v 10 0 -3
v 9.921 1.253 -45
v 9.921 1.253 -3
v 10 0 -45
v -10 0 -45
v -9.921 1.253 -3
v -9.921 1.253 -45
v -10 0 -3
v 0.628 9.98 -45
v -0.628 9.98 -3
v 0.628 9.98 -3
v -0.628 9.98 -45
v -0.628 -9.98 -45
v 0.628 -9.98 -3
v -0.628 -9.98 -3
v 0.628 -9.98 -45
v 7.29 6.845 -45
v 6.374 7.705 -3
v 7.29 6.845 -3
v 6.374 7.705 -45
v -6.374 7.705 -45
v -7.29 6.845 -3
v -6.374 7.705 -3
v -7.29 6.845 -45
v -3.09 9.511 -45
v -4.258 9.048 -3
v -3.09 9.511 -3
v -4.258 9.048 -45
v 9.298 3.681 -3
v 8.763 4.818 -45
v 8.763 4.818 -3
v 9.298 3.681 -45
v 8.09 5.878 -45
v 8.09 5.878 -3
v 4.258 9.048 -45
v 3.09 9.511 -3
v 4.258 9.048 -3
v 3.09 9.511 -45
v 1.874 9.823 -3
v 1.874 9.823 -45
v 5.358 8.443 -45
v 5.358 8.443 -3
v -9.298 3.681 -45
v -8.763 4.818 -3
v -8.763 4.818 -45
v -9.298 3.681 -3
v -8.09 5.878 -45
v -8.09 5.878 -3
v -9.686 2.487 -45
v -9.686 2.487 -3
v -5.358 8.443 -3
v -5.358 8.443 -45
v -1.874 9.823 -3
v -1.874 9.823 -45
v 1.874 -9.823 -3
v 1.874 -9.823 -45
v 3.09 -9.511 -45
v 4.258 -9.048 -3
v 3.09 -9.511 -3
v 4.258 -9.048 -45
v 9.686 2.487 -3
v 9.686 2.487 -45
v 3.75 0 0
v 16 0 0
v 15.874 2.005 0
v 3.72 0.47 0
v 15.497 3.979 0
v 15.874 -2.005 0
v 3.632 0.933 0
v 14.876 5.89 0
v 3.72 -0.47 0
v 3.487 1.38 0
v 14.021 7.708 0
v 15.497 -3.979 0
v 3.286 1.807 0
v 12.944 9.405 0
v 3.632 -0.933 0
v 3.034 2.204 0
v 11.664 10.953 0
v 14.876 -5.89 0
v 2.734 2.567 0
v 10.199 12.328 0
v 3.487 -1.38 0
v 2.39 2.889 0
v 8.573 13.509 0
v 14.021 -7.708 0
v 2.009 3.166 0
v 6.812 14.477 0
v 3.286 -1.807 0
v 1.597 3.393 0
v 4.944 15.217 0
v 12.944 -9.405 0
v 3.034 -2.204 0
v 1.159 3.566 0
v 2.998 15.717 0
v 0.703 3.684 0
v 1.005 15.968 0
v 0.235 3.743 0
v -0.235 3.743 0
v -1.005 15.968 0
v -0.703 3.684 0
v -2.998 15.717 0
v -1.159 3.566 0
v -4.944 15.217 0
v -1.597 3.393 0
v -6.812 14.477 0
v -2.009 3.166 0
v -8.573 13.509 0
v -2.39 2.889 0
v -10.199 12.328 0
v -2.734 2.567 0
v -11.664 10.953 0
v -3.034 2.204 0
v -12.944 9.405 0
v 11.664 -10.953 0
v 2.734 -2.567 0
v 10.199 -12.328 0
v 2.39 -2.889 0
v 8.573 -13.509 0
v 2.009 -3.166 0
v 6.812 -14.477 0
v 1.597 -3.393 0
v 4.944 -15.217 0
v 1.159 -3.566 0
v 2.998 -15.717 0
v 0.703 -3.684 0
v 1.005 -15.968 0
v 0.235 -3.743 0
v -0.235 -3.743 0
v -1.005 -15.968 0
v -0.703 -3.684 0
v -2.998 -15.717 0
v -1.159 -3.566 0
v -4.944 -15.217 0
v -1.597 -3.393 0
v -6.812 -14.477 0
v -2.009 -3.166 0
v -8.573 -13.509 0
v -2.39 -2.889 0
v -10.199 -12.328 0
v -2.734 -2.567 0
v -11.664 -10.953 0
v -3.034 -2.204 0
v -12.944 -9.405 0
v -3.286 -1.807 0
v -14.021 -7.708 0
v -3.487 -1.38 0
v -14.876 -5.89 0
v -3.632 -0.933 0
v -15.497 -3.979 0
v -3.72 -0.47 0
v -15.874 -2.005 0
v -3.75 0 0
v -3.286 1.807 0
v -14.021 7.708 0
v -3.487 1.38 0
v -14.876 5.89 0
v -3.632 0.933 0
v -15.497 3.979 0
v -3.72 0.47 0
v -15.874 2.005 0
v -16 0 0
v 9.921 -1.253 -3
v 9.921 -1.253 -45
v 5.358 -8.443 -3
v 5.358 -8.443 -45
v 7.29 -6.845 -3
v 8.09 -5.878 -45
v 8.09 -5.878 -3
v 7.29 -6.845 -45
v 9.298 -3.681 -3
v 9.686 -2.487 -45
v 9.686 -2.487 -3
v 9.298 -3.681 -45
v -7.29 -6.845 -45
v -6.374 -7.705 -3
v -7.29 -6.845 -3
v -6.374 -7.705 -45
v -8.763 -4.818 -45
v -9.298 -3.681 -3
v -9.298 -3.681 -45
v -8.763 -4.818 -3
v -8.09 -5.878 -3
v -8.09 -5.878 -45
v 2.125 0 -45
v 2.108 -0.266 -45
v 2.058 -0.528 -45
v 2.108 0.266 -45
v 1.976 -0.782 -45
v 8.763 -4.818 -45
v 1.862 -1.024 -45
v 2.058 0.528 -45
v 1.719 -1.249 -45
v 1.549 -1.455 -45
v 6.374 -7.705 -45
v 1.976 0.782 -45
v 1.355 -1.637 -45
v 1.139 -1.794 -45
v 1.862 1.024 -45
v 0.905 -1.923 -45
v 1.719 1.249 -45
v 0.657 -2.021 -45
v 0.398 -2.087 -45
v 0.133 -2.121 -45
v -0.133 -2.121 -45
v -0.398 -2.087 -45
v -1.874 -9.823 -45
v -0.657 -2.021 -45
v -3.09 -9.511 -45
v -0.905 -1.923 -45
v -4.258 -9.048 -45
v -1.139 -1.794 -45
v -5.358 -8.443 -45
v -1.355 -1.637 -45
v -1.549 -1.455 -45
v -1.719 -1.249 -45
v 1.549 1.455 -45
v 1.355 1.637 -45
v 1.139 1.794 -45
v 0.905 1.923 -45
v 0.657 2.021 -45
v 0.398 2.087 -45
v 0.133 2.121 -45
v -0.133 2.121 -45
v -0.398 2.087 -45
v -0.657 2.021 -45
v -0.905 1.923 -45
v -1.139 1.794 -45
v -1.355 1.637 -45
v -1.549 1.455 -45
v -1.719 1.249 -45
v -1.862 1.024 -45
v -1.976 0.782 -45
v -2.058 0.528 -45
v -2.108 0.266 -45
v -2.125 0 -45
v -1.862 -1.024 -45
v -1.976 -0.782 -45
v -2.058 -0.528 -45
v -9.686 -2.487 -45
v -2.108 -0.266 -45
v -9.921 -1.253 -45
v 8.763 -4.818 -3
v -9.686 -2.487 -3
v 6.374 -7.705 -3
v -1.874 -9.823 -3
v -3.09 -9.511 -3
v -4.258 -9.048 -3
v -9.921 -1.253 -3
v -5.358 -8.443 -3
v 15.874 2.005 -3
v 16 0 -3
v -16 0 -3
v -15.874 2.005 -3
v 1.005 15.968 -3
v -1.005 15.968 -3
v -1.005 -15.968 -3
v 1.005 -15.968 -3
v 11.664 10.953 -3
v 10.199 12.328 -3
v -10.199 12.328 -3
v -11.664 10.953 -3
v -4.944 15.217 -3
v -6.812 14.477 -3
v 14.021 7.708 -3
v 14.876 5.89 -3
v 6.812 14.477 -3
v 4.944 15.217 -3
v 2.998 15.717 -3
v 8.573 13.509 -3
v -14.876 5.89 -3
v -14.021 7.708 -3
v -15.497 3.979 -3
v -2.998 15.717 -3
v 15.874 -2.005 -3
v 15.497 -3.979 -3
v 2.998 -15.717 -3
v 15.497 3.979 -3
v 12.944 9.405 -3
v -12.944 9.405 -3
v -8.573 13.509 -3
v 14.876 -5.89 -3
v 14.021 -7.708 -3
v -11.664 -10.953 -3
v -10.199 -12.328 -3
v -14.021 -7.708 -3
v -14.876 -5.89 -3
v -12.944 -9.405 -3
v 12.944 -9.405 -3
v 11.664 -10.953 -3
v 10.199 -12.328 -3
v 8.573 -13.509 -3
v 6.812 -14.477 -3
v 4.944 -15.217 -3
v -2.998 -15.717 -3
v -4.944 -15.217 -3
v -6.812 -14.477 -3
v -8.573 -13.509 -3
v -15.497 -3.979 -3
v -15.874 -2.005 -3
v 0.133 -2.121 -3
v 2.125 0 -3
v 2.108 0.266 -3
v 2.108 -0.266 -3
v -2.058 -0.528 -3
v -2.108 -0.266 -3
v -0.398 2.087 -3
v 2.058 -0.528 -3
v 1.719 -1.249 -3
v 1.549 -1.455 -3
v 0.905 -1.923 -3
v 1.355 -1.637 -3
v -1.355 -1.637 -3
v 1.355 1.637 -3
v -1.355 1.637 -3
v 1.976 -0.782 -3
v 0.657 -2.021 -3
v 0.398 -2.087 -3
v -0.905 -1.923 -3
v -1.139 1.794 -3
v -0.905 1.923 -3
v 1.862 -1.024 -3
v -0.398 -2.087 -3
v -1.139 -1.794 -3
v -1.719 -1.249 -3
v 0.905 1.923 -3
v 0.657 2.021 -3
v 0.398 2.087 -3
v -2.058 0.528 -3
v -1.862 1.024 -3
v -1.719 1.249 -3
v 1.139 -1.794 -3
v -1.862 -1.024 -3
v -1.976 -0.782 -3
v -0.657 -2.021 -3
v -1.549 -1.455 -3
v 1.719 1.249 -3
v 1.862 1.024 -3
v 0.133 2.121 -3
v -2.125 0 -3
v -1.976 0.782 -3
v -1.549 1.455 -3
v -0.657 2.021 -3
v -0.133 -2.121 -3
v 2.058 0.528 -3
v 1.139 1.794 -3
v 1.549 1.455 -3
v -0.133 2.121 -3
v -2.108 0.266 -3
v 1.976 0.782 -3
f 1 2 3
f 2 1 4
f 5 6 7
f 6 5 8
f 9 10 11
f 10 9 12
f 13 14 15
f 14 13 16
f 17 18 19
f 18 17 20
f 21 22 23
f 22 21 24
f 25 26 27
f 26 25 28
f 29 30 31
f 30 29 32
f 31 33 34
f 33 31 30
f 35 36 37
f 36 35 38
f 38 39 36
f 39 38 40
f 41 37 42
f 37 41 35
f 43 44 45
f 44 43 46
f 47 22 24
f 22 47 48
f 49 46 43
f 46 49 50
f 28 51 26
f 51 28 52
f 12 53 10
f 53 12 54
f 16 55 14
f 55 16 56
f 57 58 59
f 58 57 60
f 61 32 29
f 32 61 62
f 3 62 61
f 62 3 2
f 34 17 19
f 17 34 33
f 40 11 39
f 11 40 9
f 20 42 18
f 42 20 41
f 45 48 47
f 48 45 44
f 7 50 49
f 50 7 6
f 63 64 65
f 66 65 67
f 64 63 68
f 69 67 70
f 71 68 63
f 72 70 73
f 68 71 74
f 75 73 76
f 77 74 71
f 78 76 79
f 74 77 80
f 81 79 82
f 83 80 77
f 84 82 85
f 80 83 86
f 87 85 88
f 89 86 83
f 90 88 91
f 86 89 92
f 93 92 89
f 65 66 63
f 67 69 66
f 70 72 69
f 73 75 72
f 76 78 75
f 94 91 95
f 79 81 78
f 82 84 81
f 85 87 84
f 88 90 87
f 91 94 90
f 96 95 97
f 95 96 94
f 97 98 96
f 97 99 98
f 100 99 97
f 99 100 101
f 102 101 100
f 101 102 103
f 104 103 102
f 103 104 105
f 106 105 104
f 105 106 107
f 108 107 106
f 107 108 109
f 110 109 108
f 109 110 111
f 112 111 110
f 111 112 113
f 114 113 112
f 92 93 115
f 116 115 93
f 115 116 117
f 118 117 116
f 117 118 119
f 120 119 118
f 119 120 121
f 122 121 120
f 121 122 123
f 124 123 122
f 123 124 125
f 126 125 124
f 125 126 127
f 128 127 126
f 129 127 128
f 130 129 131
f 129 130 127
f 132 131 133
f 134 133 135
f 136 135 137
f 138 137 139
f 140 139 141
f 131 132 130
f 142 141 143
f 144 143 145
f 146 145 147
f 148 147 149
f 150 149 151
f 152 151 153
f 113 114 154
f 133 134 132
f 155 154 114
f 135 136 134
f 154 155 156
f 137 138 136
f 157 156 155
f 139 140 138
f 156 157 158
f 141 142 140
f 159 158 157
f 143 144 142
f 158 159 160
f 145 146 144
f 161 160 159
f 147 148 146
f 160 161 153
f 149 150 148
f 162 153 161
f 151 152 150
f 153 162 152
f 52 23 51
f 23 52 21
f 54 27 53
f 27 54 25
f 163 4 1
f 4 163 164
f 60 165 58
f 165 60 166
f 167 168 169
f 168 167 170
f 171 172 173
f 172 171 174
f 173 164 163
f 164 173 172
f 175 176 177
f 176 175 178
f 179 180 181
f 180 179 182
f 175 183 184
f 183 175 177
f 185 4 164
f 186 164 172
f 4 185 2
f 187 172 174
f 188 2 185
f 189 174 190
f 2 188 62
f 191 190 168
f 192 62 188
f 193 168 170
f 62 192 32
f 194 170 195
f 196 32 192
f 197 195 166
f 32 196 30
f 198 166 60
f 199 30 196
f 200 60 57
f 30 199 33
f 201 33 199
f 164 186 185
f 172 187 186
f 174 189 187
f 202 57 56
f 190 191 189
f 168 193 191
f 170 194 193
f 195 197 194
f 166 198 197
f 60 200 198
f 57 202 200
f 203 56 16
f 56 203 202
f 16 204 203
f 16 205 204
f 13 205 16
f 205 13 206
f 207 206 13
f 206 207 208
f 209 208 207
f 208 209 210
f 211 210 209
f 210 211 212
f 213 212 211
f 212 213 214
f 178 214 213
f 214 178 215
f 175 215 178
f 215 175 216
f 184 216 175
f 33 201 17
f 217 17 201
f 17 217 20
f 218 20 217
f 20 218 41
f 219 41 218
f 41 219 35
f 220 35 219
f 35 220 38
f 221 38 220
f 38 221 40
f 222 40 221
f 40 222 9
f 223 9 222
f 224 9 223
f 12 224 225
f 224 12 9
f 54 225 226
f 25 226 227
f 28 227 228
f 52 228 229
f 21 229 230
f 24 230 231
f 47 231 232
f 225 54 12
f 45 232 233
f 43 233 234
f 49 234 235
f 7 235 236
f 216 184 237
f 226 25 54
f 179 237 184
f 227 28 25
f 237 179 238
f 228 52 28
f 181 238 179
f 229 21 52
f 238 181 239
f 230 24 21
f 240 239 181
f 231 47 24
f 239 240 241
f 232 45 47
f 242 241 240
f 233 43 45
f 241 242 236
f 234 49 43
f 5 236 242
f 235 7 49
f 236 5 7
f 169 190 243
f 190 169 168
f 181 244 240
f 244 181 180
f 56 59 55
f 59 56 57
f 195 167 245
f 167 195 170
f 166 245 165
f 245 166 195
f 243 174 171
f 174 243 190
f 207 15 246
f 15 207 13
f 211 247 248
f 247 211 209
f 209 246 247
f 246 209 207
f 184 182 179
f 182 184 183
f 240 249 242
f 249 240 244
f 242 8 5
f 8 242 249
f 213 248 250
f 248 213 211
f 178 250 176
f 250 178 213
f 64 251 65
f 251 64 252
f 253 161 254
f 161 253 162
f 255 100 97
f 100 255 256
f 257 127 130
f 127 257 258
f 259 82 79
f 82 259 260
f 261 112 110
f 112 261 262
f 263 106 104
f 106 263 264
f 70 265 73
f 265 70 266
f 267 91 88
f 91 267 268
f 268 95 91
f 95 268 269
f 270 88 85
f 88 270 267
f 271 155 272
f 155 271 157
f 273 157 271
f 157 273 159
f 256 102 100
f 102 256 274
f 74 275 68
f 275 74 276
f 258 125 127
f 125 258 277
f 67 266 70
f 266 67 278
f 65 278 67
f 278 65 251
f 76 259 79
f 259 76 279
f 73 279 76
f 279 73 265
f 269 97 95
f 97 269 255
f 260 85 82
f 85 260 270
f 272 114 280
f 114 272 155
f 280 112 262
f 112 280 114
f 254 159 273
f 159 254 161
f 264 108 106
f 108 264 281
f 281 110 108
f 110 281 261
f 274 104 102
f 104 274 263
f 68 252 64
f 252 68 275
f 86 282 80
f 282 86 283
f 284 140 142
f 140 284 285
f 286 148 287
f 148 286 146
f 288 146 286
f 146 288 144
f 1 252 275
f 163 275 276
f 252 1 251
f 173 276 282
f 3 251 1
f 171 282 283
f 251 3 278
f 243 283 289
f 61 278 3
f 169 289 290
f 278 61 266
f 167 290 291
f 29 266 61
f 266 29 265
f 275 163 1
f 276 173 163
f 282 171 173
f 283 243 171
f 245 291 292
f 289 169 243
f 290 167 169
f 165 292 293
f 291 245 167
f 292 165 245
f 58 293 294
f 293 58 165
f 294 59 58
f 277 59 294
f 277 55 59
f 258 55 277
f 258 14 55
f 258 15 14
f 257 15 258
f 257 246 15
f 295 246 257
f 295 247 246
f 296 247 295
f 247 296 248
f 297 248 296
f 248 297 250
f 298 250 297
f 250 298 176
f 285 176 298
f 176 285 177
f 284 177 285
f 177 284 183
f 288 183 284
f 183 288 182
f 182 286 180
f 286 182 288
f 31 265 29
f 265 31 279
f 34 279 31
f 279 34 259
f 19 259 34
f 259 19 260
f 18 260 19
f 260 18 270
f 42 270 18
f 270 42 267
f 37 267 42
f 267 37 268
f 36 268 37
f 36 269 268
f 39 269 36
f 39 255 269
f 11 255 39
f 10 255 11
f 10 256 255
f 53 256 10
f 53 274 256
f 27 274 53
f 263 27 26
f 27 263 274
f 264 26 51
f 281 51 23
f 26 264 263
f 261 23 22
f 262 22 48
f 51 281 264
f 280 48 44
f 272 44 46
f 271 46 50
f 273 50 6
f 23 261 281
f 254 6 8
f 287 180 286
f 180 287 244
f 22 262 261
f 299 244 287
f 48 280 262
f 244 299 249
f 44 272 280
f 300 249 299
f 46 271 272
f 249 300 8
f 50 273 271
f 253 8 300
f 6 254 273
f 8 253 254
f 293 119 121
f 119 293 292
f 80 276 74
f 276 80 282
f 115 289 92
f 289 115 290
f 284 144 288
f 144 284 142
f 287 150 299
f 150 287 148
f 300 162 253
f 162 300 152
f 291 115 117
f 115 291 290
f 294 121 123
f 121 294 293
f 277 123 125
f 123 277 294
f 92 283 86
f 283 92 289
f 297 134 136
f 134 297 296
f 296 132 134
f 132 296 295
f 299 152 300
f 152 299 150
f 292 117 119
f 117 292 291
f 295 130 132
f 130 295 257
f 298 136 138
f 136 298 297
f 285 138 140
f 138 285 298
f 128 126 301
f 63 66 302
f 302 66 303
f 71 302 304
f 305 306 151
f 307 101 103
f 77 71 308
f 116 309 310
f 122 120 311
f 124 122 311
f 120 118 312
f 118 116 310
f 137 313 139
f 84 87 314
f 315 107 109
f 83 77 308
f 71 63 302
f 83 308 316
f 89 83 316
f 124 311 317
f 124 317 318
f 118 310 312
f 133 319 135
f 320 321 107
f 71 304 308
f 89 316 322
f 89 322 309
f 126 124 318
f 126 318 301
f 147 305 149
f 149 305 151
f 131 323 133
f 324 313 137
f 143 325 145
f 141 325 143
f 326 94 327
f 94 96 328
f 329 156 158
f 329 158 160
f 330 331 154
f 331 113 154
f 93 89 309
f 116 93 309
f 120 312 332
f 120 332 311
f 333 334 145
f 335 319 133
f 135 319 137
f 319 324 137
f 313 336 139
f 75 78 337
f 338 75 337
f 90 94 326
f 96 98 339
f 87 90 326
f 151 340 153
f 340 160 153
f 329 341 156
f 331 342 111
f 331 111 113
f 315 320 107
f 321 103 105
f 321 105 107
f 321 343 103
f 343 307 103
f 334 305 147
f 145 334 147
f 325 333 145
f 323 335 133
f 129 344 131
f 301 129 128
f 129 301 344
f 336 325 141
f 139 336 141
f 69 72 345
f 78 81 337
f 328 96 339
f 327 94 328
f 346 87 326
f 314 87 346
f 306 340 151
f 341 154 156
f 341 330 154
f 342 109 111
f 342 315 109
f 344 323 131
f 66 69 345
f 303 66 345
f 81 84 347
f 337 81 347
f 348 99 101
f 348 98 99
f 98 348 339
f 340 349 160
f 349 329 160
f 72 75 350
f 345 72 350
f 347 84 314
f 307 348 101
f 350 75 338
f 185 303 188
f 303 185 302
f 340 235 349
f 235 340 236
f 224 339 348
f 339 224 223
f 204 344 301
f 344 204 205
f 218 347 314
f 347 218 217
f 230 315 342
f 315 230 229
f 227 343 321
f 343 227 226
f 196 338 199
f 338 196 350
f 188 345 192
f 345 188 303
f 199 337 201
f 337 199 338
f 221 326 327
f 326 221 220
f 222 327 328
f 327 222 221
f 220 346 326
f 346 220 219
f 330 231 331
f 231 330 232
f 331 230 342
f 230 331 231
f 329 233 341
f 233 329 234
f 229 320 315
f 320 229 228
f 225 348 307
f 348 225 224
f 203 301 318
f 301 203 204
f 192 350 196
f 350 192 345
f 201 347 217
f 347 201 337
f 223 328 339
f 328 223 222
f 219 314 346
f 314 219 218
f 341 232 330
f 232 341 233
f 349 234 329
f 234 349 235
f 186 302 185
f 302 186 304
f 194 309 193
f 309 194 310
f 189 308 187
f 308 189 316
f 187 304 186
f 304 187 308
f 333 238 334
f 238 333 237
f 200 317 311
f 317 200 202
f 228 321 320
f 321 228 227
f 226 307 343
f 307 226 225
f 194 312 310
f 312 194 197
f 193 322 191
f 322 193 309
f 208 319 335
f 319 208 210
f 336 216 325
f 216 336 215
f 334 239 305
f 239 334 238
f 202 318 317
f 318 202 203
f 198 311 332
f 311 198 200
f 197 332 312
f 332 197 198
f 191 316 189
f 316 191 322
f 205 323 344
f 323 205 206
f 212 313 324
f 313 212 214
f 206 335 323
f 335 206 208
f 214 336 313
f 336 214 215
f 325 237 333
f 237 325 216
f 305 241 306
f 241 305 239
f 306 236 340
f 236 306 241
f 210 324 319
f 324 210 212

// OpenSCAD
$fn = 50;


difference() {
	union() {
		translate(v = [0, 0, -45.0000000000]) {
			cylinder(h = 45, r = 10.0000000000);
		}
		translate(v = [0, 0, -3.0000000000]) {
			cylinder(h = 3, r = 16.0000000000);
		}
	}
	union() {
		translate(v = [0, 0, 0]) {
			rotate(a = [0, 0, 0]) {
				difference() {
					union() {
						#translate(v = [0, 0, -45.0000000000]) {
							cylinder(h = 45, r = 2.0000000000);
						}
						#translate(v = [0, 0, -3]) {
							cylinder(h = 3, r1 = 2.1250000000, r2 = 3.7500000000);
						}
						#translate(v = [0, 0, -45.0000000000]) {
							cylinder(h = 45, r = 2.1250000000);
						}
						#translate(v = [0, 0, -45.0000000000]) {
							cylinder(h = 45, r = 2.0000000000);
						}
					}
					union();
				}
			}
		}
	}
}
